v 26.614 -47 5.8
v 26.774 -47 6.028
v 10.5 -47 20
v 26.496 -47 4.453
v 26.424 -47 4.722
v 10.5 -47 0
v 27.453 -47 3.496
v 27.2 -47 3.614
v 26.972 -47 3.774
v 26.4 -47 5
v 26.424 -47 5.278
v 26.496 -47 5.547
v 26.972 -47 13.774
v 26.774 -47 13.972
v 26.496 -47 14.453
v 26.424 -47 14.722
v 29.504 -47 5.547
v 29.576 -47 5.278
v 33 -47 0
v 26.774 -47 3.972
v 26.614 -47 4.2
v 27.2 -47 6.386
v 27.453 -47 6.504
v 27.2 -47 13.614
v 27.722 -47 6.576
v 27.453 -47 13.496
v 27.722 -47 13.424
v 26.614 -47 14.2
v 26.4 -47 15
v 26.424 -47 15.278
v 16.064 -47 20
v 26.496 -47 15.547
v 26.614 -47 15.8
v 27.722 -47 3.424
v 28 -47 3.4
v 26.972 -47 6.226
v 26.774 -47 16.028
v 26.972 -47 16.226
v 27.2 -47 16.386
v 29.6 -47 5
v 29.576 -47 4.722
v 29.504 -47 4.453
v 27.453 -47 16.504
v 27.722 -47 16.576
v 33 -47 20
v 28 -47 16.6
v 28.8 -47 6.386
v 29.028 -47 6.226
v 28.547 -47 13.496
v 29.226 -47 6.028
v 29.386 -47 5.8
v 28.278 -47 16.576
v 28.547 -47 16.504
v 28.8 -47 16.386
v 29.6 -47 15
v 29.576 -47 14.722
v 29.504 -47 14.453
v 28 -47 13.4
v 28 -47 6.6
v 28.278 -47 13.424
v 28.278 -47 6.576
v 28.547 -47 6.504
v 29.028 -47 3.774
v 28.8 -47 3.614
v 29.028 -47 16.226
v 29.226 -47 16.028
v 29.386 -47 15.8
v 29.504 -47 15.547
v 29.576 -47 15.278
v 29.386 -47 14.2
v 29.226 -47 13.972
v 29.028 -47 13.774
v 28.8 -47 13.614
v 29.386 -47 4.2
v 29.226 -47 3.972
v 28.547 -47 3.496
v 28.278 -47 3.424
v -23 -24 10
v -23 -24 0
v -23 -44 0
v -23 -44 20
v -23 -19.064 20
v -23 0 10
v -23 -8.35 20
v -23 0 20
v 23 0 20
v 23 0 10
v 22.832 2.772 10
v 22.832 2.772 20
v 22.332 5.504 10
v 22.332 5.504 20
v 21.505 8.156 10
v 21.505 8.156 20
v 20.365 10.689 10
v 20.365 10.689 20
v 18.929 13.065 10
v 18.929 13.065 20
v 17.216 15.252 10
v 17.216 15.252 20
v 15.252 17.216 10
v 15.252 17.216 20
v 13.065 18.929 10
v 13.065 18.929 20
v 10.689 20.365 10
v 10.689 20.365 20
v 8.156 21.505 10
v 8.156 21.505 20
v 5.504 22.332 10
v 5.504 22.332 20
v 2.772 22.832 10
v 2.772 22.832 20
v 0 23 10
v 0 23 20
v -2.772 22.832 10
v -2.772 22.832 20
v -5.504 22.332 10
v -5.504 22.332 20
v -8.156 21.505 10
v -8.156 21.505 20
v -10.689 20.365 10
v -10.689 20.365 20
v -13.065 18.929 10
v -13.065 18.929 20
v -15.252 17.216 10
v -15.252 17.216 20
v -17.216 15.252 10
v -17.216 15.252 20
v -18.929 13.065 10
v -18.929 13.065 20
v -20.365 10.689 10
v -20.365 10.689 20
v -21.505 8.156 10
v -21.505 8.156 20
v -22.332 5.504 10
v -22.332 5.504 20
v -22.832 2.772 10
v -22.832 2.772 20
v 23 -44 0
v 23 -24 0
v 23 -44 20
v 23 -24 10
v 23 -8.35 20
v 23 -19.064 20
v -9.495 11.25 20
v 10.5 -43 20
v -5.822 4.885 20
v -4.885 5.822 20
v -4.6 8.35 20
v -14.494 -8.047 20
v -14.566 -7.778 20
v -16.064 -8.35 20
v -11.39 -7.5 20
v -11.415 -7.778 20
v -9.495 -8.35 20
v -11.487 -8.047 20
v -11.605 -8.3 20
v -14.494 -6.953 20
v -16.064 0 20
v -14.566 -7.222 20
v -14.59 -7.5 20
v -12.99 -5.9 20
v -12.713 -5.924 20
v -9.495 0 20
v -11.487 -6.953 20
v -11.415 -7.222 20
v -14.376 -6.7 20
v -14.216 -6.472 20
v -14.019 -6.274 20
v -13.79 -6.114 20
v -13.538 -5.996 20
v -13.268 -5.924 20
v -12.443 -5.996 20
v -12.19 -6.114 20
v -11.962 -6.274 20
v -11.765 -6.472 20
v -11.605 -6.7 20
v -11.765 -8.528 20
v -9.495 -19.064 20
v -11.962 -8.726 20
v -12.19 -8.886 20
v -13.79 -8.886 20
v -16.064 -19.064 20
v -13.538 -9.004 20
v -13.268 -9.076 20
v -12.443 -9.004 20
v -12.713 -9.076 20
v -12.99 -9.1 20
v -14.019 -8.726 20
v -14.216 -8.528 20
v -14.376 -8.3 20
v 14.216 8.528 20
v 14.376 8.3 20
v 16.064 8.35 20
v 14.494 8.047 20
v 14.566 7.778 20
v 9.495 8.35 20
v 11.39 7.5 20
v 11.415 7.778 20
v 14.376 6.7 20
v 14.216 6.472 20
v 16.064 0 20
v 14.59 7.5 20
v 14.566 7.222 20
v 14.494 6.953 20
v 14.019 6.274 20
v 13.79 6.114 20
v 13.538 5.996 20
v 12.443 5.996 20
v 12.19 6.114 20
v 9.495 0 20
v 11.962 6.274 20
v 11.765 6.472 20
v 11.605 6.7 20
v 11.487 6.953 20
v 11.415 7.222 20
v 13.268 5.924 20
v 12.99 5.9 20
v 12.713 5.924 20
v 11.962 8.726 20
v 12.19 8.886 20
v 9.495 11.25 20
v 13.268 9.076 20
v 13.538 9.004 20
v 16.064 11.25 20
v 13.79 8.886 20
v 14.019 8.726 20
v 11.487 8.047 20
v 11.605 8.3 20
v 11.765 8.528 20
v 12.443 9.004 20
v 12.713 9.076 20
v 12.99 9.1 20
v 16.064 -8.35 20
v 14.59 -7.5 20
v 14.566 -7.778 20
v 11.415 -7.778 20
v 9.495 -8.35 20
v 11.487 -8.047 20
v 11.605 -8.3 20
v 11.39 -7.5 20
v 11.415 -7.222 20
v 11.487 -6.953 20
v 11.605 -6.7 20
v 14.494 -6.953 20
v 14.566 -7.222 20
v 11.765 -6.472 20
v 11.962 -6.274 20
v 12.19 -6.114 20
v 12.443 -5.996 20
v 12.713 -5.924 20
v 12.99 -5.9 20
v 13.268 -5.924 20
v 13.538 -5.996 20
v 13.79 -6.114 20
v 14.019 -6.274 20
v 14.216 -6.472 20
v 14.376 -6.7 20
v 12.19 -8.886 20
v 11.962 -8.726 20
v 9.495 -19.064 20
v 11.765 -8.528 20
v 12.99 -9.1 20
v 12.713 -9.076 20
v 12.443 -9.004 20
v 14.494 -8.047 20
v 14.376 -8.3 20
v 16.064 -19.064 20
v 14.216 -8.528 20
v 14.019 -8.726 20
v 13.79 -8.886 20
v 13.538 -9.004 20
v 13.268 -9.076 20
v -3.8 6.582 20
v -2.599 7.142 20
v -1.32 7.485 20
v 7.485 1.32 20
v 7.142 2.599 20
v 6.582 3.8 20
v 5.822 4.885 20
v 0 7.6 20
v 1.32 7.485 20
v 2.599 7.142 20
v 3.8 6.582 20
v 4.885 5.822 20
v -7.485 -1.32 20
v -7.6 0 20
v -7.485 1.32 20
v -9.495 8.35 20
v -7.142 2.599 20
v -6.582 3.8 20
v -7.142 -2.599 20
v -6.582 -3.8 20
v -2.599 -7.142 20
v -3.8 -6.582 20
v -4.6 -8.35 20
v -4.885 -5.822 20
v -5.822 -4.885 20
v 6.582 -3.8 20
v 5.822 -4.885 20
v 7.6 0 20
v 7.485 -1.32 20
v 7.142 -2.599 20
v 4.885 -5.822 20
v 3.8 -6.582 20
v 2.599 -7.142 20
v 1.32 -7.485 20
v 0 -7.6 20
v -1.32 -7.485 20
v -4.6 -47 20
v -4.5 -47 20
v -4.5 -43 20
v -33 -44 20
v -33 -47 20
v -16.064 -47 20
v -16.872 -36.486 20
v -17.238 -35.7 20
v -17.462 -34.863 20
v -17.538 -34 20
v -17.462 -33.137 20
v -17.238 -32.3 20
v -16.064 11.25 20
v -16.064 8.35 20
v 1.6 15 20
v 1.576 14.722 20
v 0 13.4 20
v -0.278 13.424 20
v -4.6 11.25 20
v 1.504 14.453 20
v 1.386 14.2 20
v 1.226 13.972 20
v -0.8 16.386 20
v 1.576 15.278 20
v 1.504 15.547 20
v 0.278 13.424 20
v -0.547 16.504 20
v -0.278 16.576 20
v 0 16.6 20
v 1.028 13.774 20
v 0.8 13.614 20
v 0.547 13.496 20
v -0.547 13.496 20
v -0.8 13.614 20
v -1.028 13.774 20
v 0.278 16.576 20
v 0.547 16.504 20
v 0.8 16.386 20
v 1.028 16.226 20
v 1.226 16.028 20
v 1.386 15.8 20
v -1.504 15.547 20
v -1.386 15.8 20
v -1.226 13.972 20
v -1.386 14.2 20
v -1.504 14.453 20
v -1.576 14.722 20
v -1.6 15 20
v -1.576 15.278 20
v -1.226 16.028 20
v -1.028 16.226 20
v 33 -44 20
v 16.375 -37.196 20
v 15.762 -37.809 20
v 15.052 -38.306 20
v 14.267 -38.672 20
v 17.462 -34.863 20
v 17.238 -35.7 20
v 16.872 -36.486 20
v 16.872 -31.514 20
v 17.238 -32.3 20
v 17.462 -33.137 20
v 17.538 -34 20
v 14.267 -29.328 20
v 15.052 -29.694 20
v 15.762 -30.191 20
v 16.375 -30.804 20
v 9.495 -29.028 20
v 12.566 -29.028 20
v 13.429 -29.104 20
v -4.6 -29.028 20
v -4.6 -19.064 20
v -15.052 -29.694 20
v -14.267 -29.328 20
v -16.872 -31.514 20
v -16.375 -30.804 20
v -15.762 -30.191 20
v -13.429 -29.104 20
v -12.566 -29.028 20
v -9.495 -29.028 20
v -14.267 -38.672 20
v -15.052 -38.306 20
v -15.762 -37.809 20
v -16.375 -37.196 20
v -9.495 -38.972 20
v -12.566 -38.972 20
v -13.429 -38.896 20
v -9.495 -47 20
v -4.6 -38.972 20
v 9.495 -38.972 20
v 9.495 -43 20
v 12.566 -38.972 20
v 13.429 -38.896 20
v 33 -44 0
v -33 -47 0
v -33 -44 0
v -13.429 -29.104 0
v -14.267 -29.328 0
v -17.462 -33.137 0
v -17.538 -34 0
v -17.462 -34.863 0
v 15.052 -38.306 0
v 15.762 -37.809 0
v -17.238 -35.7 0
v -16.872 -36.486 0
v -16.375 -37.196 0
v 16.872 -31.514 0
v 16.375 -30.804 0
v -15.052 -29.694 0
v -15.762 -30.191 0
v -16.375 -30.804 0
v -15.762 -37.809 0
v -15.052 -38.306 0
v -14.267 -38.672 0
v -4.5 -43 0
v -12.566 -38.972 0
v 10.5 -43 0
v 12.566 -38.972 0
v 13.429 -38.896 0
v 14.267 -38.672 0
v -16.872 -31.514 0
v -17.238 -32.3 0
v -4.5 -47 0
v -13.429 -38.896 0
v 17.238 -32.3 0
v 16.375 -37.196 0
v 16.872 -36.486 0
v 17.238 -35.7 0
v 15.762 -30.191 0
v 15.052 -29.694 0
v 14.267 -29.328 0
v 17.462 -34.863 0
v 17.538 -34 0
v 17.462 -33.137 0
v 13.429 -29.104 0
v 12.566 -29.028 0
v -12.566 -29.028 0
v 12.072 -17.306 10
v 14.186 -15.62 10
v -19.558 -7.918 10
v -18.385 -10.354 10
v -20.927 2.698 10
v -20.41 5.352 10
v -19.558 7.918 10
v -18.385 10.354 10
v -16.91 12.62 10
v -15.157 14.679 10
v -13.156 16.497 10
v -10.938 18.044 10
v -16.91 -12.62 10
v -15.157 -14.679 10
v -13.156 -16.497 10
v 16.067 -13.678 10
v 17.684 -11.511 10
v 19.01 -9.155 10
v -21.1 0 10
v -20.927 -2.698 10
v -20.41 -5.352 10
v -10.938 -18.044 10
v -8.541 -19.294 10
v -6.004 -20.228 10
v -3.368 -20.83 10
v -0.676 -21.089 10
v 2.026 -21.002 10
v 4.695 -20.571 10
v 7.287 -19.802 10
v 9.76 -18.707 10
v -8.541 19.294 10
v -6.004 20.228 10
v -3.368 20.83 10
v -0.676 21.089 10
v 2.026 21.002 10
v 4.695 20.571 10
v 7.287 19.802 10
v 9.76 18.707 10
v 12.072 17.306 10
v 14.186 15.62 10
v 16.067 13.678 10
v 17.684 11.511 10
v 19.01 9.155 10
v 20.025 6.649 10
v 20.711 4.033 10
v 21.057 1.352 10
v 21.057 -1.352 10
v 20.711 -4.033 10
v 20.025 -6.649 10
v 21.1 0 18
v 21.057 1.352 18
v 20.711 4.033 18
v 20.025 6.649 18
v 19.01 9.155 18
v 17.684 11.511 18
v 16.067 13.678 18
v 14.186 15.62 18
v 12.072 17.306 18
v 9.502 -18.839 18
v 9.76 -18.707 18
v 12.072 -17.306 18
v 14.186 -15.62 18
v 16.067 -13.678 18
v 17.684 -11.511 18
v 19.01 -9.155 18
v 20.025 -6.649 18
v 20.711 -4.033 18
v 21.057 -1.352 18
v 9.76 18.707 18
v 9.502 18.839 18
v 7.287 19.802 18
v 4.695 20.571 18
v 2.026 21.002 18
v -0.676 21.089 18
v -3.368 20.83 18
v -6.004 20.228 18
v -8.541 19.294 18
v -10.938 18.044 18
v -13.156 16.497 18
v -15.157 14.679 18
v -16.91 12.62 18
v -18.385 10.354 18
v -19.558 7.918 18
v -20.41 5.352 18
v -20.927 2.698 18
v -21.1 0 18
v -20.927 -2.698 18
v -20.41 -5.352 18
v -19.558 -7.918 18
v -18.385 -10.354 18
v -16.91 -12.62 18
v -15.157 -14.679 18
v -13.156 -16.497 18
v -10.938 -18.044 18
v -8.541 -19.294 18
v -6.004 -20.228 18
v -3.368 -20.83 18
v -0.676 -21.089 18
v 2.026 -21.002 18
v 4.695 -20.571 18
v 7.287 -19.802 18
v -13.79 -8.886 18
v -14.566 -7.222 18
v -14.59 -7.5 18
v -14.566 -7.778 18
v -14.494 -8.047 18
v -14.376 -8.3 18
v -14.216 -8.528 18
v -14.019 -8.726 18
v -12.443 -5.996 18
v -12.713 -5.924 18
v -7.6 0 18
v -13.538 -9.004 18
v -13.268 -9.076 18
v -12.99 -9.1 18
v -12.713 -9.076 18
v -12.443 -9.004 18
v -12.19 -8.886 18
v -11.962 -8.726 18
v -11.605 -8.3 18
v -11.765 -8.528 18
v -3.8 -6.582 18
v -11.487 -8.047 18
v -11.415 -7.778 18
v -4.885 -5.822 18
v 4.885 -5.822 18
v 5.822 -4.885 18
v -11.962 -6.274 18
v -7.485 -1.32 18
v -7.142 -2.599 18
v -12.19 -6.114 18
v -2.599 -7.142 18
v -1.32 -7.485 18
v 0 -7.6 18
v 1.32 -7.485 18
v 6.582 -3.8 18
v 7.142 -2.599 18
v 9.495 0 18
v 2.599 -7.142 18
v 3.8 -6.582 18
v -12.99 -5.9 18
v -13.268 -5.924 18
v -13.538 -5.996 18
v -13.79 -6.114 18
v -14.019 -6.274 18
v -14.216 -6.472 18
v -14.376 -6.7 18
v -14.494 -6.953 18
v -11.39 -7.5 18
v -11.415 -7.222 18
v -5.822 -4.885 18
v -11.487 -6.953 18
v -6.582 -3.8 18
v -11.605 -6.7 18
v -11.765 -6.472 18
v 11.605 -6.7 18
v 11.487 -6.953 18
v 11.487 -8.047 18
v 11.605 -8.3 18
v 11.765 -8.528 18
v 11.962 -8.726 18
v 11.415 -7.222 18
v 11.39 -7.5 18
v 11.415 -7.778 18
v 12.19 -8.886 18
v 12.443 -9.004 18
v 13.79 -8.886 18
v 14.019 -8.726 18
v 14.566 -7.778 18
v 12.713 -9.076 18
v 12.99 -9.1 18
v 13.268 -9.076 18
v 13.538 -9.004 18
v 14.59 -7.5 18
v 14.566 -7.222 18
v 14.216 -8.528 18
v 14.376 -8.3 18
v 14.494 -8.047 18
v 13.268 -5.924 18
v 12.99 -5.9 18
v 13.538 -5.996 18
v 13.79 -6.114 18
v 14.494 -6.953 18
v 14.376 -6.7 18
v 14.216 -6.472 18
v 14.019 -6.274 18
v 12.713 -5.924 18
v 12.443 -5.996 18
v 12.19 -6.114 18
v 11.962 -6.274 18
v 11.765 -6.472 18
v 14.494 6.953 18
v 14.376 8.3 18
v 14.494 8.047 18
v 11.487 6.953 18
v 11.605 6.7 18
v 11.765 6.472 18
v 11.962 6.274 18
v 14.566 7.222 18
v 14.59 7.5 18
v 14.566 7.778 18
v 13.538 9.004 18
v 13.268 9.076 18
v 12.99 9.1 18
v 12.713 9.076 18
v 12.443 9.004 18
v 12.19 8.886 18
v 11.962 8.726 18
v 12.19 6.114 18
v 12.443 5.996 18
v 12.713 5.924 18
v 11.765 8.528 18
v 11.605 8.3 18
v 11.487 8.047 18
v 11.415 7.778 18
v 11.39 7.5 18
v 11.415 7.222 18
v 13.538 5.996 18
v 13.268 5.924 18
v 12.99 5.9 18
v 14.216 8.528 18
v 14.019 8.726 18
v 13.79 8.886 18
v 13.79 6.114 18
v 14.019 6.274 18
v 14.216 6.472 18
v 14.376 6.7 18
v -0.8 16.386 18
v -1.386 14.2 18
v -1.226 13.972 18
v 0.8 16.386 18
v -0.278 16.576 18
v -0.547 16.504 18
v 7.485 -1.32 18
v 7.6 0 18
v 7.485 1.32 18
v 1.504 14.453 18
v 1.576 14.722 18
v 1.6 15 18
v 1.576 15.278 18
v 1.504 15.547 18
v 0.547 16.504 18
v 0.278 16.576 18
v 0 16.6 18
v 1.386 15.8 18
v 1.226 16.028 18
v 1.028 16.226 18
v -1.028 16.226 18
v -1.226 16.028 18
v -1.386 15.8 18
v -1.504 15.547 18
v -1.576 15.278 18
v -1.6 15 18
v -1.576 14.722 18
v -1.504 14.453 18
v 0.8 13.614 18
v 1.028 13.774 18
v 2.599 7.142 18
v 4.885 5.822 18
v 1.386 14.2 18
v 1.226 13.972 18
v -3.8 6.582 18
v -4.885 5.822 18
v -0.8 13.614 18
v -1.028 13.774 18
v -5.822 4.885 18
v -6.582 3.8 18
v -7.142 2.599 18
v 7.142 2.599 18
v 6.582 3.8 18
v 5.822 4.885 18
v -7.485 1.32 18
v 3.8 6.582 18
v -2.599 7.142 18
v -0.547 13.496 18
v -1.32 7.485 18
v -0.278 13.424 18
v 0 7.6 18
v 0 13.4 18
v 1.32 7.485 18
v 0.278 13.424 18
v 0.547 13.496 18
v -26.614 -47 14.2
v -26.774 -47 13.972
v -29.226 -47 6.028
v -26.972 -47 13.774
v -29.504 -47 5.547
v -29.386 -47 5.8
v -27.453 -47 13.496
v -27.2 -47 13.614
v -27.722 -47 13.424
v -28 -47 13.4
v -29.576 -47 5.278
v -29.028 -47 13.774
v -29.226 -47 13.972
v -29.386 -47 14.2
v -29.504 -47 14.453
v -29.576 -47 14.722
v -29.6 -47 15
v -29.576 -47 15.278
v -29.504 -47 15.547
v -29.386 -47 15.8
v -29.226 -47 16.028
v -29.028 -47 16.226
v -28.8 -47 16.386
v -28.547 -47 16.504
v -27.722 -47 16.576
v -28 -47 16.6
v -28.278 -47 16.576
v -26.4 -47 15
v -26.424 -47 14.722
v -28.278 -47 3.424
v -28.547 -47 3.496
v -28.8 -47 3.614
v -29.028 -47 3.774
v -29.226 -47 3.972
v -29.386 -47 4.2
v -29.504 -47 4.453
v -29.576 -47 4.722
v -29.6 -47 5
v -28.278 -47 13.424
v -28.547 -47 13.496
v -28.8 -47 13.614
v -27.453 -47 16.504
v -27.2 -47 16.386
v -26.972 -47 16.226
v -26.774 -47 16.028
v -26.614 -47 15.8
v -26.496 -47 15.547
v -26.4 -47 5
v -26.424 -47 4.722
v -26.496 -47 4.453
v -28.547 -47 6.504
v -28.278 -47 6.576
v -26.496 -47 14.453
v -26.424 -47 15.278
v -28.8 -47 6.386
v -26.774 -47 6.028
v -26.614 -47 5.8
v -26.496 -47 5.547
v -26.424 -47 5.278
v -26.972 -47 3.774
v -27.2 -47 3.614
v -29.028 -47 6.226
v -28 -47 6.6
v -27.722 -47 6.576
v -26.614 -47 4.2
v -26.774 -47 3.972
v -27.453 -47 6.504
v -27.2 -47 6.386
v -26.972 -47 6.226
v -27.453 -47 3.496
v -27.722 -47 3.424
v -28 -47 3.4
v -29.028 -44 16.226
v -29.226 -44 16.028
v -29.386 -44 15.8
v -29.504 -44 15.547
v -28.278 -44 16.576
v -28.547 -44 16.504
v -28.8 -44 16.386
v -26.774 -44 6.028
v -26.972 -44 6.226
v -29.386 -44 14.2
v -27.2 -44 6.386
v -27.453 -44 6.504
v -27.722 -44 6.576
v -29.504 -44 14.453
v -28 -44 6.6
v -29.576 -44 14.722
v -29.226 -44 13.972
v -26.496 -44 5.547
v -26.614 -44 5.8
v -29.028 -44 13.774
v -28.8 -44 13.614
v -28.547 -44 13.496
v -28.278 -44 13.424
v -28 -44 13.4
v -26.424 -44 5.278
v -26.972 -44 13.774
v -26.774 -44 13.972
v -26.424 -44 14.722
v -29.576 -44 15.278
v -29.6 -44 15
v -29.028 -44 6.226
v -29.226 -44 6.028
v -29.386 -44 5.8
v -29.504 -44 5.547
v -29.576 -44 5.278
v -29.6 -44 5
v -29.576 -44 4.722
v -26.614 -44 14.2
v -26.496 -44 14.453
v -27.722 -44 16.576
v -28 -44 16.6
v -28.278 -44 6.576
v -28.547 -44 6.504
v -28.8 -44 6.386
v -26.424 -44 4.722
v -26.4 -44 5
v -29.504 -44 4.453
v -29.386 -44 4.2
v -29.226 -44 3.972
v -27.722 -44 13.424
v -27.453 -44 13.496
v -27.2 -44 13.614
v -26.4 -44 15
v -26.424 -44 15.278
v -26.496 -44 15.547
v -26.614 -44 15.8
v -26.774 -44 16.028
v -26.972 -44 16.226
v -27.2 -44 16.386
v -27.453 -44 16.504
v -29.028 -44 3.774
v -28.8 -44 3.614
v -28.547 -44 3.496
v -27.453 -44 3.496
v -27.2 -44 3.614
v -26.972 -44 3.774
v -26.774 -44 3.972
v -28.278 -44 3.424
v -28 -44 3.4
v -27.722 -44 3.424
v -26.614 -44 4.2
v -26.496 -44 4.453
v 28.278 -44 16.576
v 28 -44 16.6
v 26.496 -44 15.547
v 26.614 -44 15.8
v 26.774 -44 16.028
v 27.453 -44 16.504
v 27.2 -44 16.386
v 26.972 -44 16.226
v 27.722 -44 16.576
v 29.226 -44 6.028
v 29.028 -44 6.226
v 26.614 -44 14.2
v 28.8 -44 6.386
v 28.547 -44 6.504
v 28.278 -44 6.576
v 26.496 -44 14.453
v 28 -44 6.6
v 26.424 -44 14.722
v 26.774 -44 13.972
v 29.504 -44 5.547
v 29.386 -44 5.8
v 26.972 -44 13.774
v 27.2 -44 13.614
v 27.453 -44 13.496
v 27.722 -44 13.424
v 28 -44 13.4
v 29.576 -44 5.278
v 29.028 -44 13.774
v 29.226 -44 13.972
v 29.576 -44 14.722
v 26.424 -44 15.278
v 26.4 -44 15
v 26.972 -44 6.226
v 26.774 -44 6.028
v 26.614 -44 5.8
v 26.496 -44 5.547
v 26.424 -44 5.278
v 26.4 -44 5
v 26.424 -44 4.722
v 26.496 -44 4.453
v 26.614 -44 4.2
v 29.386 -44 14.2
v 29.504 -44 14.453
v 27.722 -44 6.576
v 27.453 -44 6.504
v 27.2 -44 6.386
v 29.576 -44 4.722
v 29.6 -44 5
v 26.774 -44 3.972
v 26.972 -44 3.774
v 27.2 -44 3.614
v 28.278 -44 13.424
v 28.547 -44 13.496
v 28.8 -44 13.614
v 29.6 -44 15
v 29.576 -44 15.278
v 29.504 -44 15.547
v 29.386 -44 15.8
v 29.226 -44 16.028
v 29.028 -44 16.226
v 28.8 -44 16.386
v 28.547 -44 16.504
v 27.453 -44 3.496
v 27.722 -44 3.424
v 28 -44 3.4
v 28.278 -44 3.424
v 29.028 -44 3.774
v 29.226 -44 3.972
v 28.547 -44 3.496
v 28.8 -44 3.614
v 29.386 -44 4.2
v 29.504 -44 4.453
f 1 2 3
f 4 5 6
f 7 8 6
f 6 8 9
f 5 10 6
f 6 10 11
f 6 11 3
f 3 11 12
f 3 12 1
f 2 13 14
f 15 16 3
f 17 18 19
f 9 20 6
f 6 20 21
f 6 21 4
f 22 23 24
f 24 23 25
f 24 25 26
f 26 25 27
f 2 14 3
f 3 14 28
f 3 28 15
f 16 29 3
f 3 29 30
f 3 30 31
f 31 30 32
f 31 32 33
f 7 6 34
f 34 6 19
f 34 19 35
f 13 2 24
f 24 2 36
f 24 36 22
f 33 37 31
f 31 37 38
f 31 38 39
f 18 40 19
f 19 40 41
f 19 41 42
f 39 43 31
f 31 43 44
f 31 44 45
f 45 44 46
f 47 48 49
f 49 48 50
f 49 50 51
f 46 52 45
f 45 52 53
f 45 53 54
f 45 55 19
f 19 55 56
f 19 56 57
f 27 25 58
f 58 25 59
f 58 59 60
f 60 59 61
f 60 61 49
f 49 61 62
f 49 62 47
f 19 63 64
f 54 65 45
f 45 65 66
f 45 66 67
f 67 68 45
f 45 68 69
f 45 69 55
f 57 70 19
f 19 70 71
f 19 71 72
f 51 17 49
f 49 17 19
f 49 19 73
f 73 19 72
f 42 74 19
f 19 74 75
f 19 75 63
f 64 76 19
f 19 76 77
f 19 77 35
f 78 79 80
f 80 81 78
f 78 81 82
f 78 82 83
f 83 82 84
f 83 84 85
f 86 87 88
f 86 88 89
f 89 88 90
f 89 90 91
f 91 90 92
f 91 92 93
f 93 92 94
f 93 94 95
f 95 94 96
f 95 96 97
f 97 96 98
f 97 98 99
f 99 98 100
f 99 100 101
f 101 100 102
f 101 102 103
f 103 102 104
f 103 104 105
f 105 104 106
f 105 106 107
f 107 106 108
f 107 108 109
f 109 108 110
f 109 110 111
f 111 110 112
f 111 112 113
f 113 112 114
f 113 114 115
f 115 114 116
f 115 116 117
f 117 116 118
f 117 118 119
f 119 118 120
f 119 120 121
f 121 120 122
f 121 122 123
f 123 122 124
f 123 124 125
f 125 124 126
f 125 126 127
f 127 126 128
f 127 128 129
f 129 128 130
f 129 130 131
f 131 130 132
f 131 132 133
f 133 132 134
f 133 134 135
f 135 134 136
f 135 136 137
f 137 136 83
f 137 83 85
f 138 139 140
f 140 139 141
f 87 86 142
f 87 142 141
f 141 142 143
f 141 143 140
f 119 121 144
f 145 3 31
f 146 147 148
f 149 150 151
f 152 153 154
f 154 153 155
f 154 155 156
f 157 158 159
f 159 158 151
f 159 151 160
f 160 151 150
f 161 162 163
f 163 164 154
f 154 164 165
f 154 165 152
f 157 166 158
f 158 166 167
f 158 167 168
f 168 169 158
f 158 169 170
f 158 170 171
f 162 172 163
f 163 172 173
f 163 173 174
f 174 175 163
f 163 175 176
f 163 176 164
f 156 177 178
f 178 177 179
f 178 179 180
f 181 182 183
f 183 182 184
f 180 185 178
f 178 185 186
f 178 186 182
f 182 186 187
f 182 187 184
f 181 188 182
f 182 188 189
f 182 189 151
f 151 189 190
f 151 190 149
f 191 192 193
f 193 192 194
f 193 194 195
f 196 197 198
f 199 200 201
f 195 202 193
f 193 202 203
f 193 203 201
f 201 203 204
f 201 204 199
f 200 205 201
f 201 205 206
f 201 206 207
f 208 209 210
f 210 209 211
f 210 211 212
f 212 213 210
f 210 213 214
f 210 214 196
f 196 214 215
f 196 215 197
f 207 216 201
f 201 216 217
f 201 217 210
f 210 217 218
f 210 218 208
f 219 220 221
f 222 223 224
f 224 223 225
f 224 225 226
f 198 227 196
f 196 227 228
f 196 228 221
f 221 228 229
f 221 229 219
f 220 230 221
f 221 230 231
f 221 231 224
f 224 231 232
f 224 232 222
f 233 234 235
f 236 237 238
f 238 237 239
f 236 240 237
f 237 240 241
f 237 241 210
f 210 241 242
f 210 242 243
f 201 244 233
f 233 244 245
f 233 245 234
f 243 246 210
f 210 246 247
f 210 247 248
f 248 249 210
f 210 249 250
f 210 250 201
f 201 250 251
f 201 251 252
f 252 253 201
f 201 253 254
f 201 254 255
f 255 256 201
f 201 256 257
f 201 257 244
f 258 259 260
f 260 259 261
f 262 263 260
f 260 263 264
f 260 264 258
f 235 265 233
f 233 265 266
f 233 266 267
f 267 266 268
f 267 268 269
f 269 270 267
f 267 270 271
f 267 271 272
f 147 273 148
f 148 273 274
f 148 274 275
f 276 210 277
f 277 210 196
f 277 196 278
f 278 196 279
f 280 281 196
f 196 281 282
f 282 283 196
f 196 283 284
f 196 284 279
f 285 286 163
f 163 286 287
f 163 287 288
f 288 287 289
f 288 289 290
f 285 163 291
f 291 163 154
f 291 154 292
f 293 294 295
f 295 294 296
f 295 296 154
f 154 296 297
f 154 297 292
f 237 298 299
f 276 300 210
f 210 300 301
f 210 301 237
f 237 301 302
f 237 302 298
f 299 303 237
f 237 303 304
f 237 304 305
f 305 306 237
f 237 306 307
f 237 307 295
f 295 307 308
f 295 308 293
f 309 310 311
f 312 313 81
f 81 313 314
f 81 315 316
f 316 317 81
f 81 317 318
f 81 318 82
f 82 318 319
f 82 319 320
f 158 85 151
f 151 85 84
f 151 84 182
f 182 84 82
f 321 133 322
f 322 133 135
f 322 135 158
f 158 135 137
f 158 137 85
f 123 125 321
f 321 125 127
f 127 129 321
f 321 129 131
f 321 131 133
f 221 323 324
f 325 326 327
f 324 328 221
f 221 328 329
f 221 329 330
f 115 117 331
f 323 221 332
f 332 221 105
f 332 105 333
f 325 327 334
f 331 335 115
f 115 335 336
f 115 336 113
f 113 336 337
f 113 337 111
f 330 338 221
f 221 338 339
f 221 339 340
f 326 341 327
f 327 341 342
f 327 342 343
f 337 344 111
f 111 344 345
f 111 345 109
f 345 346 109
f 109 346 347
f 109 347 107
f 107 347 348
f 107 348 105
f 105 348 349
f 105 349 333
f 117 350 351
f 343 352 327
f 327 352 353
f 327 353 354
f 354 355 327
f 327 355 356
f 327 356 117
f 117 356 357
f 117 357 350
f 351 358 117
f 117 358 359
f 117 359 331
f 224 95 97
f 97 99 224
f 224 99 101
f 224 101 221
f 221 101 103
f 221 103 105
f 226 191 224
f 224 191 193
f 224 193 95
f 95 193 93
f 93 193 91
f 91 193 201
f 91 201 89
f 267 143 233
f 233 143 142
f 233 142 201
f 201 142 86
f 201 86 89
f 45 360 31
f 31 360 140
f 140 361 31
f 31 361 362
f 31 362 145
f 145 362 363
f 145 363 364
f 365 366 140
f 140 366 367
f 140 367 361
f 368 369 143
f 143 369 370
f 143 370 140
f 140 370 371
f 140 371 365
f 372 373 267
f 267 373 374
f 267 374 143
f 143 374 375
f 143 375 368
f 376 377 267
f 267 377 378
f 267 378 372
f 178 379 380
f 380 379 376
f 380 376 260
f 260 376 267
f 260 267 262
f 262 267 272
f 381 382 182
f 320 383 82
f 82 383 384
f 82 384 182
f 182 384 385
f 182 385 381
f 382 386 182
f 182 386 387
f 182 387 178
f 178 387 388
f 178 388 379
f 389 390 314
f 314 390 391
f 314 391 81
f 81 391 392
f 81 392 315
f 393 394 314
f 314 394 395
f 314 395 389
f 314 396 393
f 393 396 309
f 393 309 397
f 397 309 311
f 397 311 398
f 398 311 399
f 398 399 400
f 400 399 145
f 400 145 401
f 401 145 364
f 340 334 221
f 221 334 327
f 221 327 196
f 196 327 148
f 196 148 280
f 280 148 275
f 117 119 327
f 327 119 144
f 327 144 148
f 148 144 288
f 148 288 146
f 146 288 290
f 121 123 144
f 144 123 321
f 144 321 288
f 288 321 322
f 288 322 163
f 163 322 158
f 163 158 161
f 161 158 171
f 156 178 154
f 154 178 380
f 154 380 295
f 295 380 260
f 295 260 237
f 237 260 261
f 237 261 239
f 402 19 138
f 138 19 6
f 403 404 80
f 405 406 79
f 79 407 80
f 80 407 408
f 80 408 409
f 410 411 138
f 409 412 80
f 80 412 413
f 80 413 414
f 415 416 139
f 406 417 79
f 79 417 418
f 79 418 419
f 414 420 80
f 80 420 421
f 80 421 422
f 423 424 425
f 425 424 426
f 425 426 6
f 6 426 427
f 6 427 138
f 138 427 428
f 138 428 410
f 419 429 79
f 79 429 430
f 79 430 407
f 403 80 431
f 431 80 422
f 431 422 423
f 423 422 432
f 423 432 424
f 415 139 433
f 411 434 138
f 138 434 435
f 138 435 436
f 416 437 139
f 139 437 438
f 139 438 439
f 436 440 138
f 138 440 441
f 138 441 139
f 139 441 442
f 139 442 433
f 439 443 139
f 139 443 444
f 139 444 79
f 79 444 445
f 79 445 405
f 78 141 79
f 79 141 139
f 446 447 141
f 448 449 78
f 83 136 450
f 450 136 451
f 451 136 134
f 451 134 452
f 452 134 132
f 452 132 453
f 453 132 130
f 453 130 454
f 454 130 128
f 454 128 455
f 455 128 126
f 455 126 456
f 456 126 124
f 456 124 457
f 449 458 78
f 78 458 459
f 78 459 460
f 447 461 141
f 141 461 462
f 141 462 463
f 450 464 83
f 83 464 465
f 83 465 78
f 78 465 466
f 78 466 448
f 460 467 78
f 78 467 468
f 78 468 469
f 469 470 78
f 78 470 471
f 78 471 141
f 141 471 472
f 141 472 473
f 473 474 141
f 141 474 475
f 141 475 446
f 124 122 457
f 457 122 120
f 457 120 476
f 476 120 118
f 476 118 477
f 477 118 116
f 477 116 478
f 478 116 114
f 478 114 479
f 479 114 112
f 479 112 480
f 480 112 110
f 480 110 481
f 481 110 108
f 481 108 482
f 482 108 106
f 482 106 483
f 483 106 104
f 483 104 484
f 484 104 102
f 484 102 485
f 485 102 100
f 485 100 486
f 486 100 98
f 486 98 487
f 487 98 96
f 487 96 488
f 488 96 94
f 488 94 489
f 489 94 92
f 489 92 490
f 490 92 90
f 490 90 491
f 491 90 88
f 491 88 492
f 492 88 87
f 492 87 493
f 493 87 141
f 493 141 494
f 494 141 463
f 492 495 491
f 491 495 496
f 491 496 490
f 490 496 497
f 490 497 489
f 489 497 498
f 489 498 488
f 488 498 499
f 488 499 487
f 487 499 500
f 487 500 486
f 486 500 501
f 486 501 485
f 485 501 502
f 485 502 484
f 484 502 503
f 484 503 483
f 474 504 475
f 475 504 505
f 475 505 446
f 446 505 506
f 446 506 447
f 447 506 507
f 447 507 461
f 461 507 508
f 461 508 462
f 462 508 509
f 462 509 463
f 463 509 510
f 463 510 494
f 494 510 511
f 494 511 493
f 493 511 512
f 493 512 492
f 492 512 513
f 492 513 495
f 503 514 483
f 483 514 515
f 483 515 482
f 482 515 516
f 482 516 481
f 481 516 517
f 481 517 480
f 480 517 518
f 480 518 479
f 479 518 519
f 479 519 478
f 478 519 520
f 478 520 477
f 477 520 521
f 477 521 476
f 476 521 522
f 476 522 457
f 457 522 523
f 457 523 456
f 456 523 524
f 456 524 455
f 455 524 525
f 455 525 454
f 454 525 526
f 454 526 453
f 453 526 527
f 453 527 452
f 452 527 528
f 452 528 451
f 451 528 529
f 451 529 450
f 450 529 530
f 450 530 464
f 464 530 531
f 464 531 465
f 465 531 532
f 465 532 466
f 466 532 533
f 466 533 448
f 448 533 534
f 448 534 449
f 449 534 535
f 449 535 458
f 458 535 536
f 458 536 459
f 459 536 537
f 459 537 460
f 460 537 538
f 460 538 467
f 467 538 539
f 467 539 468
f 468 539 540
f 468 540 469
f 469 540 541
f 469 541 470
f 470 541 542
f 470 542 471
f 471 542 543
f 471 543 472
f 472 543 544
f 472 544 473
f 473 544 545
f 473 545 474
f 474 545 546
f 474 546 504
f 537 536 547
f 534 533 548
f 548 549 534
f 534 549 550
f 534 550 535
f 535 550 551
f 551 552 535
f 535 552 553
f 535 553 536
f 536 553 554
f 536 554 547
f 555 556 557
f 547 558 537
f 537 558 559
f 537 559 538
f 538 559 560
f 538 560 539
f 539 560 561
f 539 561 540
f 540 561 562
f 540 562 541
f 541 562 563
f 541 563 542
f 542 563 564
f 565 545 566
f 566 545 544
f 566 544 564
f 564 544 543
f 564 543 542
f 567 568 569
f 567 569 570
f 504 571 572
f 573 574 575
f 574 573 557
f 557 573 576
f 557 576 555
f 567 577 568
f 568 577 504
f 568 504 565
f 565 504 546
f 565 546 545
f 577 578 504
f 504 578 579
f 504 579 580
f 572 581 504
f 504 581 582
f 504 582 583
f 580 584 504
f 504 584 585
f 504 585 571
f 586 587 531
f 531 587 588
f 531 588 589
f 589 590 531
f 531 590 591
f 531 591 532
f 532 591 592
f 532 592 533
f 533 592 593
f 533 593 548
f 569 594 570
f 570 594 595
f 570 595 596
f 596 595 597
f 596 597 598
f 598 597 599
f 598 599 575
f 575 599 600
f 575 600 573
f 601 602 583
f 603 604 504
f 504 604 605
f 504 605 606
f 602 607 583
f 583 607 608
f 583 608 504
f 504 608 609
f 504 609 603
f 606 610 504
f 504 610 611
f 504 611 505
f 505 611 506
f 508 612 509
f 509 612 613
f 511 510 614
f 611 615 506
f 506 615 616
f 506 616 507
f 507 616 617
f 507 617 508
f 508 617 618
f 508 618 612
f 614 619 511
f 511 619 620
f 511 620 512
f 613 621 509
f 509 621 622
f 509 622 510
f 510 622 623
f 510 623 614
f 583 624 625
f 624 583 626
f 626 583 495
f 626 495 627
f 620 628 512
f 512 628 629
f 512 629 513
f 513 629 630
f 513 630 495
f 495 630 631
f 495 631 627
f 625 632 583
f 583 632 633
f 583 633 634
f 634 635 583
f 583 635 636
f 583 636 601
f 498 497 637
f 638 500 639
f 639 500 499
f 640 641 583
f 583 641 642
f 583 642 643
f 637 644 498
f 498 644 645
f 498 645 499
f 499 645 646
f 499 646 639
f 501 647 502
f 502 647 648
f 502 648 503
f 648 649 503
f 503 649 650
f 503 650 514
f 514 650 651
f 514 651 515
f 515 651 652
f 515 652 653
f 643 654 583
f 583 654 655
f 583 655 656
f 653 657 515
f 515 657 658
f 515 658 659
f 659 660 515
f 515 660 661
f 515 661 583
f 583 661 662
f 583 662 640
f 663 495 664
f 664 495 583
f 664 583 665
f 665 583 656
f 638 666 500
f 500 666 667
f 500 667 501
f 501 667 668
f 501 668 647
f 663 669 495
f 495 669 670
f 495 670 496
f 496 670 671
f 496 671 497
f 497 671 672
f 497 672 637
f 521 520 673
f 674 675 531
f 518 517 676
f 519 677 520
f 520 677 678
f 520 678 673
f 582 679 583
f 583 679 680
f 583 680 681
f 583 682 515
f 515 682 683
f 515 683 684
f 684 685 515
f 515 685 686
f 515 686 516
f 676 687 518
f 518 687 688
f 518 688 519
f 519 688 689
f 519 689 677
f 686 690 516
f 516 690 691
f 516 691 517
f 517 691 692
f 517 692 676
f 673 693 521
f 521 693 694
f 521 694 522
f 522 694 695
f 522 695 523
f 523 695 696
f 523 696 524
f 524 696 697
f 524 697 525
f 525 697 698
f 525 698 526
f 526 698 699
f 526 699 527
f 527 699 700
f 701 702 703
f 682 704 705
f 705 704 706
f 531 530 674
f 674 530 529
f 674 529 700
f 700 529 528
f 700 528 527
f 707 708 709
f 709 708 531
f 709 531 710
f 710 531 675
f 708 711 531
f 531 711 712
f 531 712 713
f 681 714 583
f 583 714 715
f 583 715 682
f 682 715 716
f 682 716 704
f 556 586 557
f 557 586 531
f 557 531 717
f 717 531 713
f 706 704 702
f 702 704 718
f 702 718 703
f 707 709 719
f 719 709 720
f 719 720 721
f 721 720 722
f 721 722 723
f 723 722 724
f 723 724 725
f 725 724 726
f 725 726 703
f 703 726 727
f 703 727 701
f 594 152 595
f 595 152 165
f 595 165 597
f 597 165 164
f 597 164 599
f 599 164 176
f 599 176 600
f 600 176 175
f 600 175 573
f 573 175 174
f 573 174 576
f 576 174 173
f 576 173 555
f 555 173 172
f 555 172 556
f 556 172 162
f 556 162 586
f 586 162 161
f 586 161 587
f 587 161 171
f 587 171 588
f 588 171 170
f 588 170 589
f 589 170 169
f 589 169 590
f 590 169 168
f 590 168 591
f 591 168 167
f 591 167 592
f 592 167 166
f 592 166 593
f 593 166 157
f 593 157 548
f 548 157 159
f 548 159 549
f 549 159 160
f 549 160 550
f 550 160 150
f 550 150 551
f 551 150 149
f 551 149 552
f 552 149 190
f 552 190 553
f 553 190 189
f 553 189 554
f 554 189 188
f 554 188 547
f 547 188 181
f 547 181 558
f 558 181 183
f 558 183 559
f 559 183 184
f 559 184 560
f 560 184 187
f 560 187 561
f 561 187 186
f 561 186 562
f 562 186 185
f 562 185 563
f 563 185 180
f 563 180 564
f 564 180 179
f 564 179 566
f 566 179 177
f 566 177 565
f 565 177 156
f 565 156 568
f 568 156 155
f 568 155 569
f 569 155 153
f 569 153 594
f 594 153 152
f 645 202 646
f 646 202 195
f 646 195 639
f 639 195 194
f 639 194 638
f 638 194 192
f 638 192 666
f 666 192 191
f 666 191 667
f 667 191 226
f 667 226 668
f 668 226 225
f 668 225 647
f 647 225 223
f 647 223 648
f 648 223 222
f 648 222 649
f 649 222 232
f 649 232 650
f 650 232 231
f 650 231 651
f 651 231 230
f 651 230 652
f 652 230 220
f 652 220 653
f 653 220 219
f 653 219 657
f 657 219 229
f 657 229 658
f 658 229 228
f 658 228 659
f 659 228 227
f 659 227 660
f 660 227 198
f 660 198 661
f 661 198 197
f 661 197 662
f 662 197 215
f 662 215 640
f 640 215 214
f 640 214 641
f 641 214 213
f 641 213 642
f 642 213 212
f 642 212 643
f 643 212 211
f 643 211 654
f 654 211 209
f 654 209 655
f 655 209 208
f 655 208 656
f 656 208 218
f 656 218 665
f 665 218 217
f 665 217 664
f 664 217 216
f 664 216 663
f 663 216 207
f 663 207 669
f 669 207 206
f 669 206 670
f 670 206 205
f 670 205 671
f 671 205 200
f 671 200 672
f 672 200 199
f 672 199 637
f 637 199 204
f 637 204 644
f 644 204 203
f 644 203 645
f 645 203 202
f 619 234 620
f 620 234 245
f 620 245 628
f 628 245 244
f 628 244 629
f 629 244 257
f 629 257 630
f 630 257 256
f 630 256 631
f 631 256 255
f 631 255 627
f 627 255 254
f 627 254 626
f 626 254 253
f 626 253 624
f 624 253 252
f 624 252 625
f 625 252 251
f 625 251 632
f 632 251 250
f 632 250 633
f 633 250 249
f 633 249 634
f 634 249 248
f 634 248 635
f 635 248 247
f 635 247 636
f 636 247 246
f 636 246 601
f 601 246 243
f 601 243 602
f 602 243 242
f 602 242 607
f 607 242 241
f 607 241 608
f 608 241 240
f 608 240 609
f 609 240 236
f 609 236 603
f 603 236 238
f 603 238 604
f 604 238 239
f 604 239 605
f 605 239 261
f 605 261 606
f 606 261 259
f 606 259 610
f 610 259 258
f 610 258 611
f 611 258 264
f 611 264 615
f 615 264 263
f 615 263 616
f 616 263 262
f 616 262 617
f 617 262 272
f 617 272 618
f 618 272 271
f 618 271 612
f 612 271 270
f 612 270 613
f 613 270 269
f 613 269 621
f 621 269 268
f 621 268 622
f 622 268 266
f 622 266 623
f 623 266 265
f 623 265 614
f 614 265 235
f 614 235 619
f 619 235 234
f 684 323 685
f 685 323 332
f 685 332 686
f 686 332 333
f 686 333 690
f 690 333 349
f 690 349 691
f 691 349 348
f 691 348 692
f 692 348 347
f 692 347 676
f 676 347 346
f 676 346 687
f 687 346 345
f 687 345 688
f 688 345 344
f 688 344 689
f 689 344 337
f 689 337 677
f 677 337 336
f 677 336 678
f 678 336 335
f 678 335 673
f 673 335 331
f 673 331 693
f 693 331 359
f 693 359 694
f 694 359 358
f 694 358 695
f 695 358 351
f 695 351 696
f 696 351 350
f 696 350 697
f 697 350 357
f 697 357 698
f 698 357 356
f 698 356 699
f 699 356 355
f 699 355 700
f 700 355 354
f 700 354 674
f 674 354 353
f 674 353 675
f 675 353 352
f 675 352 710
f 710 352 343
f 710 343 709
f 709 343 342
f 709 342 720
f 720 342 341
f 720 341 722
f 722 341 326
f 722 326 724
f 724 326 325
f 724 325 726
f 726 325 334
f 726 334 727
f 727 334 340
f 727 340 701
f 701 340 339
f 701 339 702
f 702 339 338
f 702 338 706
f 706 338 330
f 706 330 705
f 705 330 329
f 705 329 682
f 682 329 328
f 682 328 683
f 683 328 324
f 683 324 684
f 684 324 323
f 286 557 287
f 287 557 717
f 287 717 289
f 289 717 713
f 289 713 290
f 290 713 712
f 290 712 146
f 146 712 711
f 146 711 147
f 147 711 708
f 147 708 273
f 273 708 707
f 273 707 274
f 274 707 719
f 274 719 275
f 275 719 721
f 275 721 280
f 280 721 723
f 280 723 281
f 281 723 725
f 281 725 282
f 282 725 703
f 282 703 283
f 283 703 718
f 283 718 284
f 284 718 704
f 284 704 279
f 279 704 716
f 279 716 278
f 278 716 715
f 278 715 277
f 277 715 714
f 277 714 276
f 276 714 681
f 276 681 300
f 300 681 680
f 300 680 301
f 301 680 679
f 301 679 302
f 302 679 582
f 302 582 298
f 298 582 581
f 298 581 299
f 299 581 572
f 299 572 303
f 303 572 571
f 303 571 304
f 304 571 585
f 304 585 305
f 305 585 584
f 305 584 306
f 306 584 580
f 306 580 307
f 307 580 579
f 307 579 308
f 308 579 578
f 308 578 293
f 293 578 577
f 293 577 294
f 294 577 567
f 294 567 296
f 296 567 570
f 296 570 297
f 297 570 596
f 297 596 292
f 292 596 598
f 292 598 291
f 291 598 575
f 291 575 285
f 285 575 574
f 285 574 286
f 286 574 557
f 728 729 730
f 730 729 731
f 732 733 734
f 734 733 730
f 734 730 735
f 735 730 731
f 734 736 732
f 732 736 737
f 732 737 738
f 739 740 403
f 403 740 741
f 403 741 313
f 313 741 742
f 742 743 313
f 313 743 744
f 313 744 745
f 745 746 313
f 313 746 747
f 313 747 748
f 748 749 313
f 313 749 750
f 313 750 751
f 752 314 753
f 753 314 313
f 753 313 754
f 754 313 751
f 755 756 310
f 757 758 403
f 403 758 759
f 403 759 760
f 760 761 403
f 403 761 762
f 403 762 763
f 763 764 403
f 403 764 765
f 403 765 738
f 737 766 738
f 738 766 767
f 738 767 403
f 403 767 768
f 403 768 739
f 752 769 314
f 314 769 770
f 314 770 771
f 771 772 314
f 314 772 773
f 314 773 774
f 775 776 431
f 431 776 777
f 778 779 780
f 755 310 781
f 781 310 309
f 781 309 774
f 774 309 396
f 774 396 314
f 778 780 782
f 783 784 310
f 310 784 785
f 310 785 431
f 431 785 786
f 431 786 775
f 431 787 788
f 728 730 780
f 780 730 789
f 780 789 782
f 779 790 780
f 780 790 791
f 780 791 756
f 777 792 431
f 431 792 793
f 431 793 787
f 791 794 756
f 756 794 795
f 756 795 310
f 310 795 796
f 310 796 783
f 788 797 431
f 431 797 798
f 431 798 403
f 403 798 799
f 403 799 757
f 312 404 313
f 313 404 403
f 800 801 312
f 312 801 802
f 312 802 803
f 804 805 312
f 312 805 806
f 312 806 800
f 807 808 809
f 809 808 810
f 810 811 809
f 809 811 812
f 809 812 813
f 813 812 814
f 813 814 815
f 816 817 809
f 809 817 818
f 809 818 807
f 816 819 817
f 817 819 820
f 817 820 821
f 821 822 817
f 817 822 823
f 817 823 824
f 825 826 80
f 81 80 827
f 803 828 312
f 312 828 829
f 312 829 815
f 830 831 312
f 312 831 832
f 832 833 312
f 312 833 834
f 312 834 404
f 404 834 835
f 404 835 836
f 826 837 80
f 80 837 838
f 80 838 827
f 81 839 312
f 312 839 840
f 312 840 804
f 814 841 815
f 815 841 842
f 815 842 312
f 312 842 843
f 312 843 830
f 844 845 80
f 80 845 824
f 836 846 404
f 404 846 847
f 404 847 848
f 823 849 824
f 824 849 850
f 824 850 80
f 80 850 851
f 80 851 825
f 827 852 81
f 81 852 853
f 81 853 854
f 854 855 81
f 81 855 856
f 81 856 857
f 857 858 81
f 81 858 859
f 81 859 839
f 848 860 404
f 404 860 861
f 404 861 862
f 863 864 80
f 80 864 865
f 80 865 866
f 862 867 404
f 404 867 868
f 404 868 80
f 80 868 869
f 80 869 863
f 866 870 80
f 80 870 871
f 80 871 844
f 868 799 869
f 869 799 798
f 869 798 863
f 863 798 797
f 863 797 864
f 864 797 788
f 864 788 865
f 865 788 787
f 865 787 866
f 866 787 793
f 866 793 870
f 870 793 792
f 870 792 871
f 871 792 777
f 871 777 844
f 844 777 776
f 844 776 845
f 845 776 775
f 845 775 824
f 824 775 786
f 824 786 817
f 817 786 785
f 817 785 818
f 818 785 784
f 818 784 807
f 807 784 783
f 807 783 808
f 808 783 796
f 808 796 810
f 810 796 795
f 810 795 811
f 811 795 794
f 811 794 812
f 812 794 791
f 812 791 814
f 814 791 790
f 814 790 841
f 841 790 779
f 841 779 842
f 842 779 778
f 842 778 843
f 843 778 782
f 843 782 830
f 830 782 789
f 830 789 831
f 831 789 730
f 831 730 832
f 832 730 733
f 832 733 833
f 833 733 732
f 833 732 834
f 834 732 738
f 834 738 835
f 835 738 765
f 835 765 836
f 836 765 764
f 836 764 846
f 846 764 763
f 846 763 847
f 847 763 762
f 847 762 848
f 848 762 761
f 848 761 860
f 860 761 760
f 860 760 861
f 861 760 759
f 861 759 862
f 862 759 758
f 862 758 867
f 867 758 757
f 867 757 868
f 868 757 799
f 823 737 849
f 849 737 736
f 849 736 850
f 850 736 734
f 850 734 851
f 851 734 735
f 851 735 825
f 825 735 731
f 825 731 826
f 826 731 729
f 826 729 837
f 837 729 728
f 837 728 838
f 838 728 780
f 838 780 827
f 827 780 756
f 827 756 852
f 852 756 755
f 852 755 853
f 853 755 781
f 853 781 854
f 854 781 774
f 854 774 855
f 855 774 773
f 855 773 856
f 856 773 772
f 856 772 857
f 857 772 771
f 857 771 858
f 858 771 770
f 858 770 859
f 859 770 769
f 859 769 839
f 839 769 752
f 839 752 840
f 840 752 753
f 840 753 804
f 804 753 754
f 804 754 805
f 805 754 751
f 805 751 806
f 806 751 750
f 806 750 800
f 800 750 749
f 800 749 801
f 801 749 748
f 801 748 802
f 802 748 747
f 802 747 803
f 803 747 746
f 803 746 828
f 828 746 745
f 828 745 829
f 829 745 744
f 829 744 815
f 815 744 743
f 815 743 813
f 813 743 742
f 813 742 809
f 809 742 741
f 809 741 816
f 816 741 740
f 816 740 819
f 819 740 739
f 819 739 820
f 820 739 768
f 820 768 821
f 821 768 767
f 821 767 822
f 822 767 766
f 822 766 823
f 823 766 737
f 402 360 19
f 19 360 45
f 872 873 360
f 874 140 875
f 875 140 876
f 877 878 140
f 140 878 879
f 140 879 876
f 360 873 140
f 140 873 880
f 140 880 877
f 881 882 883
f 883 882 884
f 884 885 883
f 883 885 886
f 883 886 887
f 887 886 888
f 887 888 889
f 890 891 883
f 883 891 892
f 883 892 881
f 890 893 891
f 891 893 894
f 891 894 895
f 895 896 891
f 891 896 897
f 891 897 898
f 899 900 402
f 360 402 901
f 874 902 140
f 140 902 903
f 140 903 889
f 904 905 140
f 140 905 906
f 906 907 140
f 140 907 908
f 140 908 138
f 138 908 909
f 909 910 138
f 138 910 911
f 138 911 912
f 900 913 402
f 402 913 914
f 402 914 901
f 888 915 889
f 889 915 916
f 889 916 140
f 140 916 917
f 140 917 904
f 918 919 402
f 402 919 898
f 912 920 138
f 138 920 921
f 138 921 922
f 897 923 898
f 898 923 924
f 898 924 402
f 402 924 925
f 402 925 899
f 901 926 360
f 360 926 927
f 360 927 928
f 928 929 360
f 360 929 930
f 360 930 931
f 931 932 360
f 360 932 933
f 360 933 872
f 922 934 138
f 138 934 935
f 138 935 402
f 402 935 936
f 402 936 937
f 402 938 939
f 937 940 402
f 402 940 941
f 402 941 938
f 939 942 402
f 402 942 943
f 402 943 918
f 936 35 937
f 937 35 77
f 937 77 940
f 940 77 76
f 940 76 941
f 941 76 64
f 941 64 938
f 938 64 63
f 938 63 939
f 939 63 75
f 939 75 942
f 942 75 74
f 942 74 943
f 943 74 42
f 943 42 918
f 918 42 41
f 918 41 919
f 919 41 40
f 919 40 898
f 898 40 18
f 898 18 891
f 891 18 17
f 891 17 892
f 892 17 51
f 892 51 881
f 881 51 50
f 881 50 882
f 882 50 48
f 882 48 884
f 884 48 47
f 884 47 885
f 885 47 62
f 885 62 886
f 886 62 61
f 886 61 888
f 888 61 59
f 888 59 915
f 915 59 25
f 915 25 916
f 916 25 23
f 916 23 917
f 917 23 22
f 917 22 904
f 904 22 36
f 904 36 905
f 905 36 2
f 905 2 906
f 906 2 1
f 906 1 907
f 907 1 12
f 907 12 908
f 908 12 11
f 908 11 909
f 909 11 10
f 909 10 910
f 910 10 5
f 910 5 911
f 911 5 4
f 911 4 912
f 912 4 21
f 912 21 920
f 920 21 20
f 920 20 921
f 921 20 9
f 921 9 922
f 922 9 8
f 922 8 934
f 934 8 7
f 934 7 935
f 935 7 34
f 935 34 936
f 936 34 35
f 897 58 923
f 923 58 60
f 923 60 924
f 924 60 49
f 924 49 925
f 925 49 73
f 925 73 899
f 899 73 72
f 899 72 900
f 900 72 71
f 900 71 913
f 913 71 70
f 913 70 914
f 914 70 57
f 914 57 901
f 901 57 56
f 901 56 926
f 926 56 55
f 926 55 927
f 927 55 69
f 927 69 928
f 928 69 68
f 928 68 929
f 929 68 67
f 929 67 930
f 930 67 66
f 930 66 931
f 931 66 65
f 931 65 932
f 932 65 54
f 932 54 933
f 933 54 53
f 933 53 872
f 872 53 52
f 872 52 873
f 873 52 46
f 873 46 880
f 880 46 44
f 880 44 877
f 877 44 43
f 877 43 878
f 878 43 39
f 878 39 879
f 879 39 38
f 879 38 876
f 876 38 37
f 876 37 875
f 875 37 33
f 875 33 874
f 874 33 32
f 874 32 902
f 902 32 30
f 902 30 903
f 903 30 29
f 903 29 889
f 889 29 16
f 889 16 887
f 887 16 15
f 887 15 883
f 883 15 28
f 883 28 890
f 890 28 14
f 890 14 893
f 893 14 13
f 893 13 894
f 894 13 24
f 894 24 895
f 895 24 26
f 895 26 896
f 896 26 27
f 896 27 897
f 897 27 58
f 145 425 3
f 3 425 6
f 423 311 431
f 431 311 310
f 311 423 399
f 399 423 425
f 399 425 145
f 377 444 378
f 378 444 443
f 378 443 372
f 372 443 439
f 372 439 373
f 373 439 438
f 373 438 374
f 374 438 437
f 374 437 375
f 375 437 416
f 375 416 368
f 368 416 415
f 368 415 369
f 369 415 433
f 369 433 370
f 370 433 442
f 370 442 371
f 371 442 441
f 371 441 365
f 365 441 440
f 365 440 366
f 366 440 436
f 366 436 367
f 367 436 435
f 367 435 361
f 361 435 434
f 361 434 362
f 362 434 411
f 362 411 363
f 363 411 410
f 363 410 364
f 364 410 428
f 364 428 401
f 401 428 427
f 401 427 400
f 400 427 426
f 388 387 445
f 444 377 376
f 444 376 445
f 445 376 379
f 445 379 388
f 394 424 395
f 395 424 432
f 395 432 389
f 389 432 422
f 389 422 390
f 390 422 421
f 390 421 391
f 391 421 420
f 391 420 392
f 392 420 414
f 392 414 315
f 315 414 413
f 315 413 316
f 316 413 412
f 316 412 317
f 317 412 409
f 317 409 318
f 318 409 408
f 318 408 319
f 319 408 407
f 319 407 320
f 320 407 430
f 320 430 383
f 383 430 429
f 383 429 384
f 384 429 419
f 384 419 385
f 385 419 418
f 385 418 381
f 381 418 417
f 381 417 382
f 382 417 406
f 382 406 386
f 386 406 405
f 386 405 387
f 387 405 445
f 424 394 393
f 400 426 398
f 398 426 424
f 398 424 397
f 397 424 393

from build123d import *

# Parameters (mm, degrees)
EXTRUDE_1_DEPTH      = 20
CUT_EXTRUDE_1_DEPTH  = 10
SKETCH_3_R           = 21.1
CUT_EXTRUDE_2_DEPTH  = 8
SKETCH_7_R           = 1.6
CUT_EXTRUDE_6_DEPTH  = 3
SKETCH_8_R           = 7.6
CUT_EXTRUDE_7_DEPTH  = 3
SKETCH_12_W          = 46
SKETCH_12_H          = 20
EXTRUDE_4_DEPTH      = 20
SKETCH_14_W          = 10
SKETCH_14_H          = 20
SKETCH_14_R          = 1.6
EXTRUDE_5_DEPTH      = 3
SKETCH_16_W          = 15
SKETCH_16_H          = 20
CUT_EXTRUDE_10_DEPTH = 4
CUT_EXTRUDE_11_DEPTH = 61.811183182


with BuildPart() as part:
    # 草图1 → 凸台-拉伸1 (new body)
    with BuildSketch(Plane.XY):
        with BuildLine():
            Line((-23, 0), (-23, -27))
            Line((-23, -27), (23, -27))
            Line((23, -27), (23, 0))
            ThreePointArc((23, 0), (0, 23), (-23, 0))
        make_face()
    extrude(amount=EXTRUDE_1_DEPTH)

    # 草图2 → 切除-拉伸1 (cut)
    with BuildSketch(Plane(origin=(0, 0, 0), x_dir=(-1, 0, 0), z_dir=(0, 0, -1))):
        with BuildLine():
            Line((-23, -24), (23, -24))
            Line((23, -24), (23, 0))
            ThreePointArc((23, 0), (0, 23), (-23, 0))
            Line((-23, 0), (-23, -24))
        make_face()
    extrude(amount=-CUT_EXTRUDE_1_DEPTH, mode=Mode.SUBTRACT)

    # 草图3 → 切除-拉伸2 (cut)
    with BuildSketch(Plane(origin=(0, 0, 10), x_dir=(-1, 0, 0), z_dir=(0, 0, -1))):
        Circle(SKETCH_3_R)
    extrude(amount=-CUT_EXTRUDE_2_DEPTH, mode=Mode.SUBTRACT)

    # 草图7 → 切除-拉伸6 (cut)
    with BuildSketch(Plane.XY.offset(20)):
        with Locations((0, 15)):
            Circle(SKETCH_7_R)
        with Locations((12.990381057, 7.5)):
            Circle(SKETCH_7_R)
        with Locations((12.990381057, -7.5)):
            Circle(SKETCH_7_R)
        with Locations((-12.990381057, -7.5)):
            Circle(SKETCH_7_R)
    extrude(amount=-CUT_EXTRUDE_6_DEPTH, mode=Mode.SUBTRACT)

    # 草图8 → 切除-拉伸7 (cut)
    with BuildSketch(Plane(origin=(0, 0, 18), x_dir=(-1, 0, 0), z_dir=(0, 0, -1))):
        Circle(SKETCH_8_R)
    extrude(amount=-CUT_EXTRUDE_7_DEPTH, mode=Mode.SUBTRACT)

    # 草图12 → 凸台-拉伸4 (add)
    with BuildSketch(Plane.XZ.offset(27)):
        with Locations((0, 10)):
            Rectangle(SKETCH_12_W, SKETCH_12_H)
    extrude(amount=EXTRUDE_4_DEPTH)

    # 草图14 → 凸台-拉伸5 (add)
    # profile 1 of 2: a face of its own
    with BuildSketch(Plane.XZ.offset(47)):
        with Locations((28, 10)):
            Rectangle(SKETCH_14_W, SKETCH_14_H)
        with Locations(Location((28, 5, 0), (0, 0, 270))):
            Circle(SKETCH_14_R, mode=Mode.SUBTRACT)
        with Locations(Location((28, 15, 0), (0, 0, 270))):
            Circle(SKETCH_14_R, mode=Mode.SUBTRACT)
    # profile 2 of 2: a face of its own
    with BuildSketch(Plane.XZ.offset(47)):
        with Locations((-28, 10)):
            Rectangle(SKETCH_14_W, SKETCH_14_H)
        with Locations(Location((-28, 5, 0), (0, 0, 270))):
            Circle(SKETCH_14_R, mode=Mode.SUBTRACT)
        with Locations(Location((-28, 15, 0), (0, 0, 270))):
            Circle(SKETCH_14_R, mode=Mode.SUBTRACT)
    extrude(amount=-EXTRUDE_5_DEPTH)

    # 草图16 → 切除-拉伸10 (cut)
    with BuildSketch(Plane.XZ.offset(47)):
        with Locations((3, 10)):
            Rectangle(SKETCH_16_W, SKETCH_16_H)
    extrude(amount=-CUT_EXTRUDE_10_DEPTH, mode=Mode.SUBTRACT)

    # 草图17 → 切除-拉伸11 (cut, through all)
    with BuildSketch(Plane(origin=(0, 0, 0), x_dir=(-1, 0, 0), z_dir=(0, 0, -1))):
        with BuildLine():
            Line((-12.566151066, -29.028305096), (12.566151066, -29.028305096))
            ThreePointArc((12.566151066, -29.028305096), (17.53784597, -34), (12.566151066, -38.971694904))
            Line((12.566151066, -38.971694904), (-12.566151066, -38.971694904))
            ThreePointArc((-12.566151066, -38.971694904), (-17.53784597, -34), (-12.566151066, -29.028305096))
        make_face()
    extrude(amount=-CUT_EXTRUDE_11_DEPTH, mode=Mode.SUBTRACT)


solid = part.part
